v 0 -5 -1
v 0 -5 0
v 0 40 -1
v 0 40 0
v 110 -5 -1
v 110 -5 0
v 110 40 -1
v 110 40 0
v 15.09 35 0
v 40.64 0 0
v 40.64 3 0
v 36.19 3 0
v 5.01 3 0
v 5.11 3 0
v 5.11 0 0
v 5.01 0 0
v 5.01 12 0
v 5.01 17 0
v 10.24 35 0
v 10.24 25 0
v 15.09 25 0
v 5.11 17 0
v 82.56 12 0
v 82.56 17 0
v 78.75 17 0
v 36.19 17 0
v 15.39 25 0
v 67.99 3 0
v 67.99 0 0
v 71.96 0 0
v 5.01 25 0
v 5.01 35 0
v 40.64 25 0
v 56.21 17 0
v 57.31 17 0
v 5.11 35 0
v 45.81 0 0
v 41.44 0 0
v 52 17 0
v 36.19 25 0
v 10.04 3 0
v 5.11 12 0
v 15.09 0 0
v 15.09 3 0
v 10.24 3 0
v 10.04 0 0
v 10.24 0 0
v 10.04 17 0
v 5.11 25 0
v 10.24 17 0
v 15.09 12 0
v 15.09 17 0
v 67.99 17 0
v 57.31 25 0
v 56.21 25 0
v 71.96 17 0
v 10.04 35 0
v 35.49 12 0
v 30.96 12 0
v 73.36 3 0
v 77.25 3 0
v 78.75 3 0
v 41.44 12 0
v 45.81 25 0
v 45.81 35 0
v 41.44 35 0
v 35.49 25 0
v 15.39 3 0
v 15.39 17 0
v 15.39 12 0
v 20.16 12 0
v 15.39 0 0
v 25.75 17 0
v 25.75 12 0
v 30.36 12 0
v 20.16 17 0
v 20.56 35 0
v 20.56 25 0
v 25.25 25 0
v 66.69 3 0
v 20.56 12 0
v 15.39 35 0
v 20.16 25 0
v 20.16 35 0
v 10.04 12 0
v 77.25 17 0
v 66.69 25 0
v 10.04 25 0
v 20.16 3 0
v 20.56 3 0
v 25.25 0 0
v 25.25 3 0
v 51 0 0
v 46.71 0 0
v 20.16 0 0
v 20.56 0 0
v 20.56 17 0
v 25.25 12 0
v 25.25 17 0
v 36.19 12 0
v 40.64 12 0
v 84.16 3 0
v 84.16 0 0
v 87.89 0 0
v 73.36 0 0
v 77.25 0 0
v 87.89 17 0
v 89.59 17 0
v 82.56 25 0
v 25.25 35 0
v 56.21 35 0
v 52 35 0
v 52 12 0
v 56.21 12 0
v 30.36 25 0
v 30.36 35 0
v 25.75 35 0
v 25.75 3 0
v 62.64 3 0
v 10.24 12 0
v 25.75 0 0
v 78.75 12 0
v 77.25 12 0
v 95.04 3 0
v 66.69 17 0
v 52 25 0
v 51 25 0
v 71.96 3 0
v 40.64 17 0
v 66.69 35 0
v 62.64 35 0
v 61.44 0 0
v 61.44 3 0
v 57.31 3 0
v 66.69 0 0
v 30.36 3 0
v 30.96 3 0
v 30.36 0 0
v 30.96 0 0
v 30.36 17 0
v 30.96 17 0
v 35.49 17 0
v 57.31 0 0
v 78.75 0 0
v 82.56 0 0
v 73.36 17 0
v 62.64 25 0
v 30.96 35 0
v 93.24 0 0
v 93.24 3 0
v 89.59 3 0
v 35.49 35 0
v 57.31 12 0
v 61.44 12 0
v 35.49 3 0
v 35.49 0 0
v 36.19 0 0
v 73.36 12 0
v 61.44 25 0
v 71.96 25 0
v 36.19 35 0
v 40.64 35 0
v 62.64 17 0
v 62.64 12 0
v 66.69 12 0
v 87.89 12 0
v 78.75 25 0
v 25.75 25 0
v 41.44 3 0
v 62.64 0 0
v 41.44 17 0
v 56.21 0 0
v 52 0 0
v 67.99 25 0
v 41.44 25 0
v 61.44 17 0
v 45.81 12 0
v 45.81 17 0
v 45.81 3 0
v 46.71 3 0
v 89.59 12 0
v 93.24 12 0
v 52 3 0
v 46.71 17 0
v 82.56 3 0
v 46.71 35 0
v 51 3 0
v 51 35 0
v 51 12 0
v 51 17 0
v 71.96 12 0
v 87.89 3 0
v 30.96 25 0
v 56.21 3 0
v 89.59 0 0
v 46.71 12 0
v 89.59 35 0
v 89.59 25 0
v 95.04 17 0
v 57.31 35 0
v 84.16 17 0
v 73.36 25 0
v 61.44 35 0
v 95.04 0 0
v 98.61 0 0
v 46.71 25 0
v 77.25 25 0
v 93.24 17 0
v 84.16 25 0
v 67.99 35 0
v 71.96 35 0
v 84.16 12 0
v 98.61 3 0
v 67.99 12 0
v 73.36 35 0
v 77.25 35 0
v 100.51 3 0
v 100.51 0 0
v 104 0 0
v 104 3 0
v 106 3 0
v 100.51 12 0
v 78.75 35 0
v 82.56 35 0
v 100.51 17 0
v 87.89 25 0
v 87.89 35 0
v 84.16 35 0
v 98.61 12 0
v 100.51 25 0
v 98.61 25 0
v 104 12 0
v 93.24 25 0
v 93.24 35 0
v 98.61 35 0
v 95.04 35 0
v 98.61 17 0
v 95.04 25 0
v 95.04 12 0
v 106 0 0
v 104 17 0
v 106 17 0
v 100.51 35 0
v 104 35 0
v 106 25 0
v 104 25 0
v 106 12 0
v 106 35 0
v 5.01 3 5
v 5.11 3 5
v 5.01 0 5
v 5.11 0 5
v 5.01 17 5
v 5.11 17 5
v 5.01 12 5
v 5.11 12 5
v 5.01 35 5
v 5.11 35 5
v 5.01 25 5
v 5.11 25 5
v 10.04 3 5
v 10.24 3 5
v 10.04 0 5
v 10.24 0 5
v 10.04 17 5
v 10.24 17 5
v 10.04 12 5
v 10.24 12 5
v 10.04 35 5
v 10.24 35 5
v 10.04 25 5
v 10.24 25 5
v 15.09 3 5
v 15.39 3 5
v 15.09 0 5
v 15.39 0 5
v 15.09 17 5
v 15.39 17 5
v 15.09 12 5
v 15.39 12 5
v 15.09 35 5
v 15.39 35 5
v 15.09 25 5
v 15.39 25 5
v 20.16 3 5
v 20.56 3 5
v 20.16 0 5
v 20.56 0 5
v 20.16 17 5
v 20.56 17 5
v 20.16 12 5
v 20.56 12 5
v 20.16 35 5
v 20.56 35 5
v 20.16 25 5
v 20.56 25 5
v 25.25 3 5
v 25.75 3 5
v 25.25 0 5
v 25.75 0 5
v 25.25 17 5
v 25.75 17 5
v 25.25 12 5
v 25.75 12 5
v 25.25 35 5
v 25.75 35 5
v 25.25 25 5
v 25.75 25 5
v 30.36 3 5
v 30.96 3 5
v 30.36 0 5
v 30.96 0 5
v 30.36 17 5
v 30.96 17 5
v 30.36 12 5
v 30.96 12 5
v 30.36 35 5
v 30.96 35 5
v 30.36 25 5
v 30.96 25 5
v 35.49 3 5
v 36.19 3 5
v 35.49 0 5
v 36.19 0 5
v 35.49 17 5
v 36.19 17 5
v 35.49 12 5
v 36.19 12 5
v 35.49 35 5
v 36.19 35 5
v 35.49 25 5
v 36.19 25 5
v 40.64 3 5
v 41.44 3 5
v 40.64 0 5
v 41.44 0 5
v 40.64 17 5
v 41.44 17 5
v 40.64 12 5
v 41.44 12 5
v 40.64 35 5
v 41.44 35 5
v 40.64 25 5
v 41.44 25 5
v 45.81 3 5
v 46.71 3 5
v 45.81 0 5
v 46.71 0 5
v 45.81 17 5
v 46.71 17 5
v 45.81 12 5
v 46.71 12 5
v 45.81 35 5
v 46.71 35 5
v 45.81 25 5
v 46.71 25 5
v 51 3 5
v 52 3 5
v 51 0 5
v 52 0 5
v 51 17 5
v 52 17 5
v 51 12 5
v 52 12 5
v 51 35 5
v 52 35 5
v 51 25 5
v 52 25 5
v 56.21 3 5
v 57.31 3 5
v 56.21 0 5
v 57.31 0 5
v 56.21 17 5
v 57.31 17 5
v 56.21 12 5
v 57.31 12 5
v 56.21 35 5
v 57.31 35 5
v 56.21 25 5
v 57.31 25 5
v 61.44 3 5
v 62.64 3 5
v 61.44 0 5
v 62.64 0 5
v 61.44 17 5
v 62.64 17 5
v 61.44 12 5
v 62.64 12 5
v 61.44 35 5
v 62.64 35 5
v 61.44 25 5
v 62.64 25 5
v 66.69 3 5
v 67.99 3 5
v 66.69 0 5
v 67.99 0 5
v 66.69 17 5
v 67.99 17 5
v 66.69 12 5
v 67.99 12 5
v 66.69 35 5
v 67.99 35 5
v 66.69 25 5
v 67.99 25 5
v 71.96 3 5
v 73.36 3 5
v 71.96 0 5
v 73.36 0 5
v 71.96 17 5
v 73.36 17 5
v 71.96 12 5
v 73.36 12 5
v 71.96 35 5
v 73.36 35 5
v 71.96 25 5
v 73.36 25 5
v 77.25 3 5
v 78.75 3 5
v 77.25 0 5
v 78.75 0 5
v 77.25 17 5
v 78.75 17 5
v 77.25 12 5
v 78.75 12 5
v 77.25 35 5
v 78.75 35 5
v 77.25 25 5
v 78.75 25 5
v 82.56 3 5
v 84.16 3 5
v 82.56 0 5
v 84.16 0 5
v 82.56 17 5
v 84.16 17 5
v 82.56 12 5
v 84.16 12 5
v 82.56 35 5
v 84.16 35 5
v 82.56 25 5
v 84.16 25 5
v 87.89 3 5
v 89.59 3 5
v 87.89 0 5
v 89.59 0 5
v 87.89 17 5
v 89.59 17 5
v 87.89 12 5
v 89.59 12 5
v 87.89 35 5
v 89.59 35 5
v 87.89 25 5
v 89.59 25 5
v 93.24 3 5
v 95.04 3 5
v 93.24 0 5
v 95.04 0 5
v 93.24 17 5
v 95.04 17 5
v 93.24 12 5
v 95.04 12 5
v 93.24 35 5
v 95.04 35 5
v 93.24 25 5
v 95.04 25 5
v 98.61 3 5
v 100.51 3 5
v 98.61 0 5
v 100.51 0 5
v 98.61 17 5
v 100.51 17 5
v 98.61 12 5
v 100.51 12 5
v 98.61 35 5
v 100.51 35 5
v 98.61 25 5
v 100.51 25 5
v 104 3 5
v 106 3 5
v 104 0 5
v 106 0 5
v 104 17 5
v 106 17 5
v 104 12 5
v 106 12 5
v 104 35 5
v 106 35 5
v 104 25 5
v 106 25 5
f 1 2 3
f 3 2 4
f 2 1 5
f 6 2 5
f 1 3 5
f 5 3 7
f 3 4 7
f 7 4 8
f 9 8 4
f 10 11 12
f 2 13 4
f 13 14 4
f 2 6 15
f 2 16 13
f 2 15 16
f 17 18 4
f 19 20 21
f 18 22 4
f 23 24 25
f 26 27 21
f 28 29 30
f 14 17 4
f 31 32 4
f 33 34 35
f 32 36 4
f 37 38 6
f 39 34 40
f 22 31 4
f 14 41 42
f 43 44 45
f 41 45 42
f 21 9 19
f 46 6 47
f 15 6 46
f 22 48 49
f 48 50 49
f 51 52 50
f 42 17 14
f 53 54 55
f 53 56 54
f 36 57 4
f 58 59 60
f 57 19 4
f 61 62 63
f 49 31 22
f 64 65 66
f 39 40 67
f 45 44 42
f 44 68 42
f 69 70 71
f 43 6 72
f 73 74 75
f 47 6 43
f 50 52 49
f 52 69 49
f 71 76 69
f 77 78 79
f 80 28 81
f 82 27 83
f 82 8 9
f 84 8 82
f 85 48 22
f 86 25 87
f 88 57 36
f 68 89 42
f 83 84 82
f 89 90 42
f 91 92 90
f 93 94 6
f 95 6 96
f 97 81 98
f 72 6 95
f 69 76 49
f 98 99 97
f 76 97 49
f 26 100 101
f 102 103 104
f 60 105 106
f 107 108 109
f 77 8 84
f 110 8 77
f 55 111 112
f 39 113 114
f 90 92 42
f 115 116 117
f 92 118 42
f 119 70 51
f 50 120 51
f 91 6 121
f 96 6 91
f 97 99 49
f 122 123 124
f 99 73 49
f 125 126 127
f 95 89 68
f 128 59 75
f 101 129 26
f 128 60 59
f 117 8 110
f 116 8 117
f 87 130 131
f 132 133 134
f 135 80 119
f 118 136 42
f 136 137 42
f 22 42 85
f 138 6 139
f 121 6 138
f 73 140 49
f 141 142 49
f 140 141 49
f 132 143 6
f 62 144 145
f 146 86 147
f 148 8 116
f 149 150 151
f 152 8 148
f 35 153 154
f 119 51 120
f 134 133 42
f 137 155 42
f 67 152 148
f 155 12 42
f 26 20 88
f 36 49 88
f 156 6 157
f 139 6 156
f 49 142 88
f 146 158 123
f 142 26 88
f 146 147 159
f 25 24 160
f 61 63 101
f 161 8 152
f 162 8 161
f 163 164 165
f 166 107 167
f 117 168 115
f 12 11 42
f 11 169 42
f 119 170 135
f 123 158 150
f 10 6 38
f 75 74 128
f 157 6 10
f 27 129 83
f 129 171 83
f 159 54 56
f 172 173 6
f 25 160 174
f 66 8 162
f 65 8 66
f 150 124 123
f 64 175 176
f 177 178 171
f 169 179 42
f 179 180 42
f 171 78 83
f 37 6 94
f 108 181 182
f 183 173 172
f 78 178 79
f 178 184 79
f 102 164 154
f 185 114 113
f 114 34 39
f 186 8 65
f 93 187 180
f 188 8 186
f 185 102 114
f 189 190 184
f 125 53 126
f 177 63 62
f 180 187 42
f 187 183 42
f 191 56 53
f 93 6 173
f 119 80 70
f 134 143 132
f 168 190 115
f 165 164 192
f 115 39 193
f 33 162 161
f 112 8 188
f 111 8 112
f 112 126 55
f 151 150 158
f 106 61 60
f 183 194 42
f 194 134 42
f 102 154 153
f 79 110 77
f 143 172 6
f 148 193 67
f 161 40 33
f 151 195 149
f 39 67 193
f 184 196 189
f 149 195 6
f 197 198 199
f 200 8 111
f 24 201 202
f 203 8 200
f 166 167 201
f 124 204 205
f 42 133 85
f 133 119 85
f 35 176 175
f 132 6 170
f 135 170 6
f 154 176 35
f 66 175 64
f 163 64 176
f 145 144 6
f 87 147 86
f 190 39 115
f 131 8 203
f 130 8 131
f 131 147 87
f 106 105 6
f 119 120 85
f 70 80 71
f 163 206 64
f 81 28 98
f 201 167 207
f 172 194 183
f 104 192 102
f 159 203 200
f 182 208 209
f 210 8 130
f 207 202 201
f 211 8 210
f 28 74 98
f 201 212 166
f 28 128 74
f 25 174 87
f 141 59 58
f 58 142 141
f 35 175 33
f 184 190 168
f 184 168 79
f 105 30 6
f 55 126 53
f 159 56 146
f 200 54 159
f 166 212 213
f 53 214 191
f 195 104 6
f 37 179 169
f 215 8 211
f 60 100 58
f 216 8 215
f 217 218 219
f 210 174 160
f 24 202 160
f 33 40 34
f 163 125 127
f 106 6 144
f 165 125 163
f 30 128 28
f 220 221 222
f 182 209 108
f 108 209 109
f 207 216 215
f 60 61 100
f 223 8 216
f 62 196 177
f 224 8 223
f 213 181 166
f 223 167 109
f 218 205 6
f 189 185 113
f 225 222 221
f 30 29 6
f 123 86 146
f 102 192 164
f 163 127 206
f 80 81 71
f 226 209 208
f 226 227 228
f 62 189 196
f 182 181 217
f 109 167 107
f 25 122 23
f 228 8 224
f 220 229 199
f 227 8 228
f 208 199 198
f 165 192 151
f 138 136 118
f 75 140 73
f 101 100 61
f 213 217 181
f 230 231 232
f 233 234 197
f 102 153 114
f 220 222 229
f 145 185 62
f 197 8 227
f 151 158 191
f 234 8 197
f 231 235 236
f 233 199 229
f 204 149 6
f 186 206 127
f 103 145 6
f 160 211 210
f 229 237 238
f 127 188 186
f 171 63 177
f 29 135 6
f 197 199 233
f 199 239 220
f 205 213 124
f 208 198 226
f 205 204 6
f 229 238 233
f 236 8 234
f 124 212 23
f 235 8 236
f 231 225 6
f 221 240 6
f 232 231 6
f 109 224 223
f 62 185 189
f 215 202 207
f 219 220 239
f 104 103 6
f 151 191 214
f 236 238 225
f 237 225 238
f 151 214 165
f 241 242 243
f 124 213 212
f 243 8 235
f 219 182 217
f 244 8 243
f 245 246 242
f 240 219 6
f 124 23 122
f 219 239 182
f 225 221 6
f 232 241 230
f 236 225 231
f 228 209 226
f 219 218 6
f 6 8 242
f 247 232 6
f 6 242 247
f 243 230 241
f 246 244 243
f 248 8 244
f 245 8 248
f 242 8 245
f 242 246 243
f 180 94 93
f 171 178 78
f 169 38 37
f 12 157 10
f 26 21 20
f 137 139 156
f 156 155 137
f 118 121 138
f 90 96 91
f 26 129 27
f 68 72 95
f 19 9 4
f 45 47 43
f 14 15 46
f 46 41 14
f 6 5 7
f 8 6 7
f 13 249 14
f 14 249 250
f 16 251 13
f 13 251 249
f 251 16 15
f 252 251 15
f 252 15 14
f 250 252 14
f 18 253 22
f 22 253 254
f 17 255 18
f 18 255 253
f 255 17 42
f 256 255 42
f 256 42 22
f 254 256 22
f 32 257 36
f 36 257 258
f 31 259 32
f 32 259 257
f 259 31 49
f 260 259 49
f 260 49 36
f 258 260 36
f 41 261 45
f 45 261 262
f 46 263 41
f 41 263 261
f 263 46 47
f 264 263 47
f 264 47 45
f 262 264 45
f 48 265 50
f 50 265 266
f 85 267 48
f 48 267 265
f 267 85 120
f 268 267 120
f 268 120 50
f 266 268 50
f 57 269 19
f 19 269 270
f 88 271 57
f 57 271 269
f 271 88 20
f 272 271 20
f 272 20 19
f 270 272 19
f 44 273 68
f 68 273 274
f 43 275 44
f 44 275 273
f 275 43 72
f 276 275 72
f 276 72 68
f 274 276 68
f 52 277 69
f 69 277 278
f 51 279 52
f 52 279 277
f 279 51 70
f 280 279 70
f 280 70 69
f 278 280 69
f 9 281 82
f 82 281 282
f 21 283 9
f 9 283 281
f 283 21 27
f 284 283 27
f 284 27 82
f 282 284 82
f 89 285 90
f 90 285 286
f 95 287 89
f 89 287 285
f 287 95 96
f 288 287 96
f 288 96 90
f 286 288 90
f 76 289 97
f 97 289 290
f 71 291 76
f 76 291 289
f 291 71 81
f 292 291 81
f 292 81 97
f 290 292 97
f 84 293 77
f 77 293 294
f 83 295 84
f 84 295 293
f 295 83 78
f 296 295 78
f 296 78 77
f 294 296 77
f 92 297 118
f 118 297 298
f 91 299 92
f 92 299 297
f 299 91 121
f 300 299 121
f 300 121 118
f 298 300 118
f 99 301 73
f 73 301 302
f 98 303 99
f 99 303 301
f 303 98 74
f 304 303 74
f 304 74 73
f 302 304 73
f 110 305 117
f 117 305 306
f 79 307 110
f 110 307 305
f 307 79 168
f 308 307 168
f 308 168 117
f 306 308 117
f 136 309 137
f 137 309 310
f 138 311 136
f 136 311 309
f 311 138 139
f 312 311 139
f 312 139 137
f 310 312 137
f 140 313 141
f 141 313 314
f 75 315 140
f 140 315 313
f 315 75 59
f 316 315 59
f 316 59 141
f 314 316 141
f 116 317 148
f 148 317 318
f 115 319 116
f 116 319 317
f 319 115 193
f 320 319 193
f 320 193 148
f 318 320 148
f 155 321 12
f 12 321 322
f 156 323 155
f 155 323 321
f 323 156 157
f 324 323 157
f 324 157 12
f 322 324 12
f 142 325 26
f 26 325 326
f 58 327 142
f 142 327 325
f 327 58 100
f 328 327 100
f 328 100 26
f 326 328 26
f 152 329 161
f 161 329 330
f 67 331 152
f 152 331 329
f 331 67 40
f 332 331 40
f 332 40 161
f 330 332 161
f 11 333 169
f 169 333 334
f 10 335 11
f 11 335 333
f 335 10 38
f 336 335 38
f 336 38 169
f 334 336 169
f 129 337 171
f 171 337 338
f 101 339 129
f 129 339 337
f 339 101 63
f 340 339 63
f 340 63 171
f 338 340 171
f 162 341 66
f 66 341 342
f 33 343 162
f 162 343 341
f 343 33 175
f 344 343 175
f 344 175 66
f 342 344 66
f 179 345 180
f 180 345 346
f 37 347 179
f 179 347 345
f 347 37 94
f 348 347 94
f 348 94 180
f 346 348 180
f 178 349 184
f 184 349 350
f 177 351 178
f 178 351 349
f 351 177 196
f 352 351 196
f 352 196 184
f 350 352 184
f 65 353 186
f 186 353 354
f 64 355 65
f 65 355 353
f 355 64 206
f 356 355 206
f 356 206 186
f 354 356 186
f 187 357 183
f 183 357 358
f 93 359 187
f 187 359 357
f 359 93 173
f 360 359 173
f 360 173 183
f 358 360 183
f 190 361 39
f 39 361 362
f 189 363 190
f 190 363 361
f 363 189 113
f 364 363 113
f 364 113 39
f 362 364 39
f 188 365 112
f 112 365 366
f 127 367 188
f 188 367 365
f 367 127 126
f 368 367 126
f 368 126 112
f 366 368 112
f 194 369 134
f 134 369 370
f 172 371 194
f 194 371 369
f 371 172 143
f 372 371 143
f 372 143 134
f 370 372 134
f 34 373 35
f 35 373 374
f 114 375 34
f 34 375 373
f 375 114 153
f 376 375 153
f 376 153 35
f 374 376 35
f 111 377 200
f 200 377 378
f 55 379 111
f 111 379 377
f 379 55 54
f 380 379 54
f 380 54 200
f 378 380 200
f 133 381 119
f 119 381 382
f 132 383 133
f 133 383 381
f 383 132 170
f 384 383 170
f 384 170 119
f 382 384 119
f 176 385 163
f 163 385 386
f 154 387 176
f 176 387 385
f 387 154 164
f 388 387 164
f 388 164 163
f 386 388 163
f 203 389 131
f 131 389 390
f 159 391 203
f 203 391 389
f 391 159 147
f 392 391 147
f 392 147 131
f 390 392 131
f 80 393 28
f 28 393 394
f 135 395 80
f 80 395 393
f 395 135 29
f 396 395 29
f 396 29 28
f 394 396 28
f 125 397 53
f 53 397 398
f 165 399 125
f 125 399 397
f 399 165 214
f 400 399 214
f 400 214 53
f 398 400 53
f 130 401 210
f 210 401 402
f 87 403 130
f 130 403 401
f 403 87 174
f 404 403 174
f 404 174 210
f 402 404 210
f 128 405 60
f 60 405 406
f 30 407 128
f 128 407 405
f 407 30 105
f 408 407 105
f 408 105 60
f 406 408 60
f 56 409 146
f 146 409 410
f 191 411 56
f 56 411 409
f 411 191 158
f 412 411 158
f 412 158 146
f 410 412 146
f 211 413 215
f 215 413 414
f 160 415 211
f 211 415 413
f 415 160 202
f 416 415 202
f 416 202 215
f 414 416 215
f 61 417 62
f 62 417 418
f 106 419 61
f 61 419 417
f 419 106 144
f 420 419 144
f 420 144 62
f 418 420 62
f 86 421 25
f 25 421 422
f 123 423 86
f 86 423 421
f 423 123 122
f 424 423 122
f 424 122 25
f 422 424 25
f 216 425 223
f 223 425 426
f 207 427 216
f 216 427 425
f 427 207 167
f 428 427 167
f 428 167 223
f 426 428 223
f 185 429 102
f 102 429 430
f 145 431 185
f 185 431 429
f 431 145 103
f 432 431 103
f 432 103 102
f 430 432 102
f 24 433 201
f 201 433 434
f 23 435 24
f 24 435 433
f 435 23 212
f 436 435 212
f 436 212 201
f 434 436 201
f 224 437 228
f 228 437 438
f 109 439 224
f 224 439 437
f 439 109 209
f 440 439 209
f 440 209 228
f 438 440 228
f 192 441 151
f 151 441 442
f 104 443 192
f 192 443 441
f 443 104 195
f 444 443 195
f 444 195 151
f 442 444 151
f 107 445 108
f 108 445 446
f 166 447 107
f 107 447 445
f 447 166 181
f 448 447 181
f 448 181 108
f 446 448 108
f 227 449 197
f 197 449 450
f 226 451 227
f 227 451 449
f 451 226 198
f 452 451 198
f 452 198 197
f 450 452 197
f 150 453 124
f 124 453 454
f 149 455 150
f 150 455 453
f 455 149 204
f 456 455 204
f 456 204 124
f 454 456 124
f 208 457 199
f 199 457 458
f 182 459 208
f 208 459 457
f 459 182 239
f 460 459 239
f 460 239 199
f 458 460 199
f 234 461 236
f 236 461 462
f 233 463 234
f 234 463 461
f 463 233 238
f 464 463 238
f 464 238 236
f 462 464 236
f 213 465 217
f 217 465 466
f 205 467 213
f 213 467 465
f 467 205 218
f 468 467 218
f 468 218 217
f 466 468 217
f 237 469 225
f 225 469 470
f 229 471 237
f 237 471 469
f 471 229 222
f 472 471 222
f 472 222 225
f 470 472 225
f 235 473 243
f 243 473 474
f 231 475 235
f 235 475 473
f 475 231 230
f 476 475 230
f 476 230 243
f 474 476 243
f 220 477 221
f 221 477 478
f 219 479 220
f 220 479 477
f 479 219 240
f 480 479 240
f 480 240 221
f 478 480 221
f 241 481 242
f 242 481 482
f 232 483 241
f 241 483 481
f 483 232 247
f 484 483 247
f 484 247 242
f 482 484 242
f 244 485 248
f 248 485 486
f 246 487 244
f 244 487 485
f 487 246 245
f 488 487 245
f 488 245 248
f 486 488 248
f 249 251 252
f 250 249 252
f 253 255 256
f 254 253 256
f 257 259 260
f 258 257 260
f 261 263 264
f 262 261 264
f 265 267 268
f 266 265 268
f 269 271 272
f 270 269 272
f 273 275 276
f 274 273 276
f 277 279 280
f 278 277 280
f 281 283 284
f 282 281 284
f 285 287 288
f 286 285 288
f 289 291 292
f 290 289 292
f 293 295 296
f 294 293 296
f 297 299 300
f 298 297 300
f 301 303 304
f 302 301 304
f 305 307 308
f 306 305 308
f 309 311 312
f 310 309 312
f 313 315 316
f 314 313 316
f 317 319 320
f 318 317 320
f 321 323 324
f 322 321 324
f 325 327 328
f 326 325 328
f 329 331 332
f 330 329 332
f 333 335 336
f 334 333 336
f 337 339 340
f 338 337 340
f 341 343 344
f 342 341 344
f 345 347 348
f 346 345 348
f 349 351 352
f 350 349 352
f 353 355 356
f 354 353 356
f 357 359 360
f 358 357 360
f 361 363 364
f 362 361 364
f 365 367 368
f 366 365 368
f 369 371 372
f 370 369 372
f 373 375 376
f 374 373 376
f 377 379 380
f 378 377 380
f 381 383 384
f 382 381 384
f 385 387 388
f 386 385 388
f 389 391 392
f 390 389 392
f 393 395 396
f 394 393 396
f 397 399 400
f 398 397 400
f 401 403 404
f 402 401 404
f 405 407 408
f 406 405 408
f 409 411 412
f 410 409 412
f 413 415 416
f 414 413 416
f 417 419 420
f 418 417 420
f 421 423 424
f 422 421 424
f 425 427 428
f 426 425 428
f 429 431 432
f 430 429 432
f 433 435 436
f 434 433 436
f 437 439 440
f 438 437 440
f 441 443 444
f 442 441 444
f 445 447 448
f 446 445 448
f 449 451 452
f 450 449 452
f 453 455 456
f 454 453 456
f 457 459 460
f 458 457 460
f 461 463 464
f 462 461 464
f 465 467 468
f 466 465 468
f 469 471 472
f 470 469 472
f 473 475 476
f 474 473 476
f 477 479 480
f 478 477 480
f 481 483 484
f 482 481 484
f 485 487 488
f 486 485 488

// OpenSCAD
module ttt(l) {
    for (i = [1:20]) {
      translate([pow(i/10,2)+i*5, 0, 0]) cube([i/10, l, 5]); 
    }
}

ttt(3);
translate([0, 12]) ttt(5);
translate([0, 25]) ttt(10);

# translate([0, -5, -1]) cube([110, 45, 1]);
